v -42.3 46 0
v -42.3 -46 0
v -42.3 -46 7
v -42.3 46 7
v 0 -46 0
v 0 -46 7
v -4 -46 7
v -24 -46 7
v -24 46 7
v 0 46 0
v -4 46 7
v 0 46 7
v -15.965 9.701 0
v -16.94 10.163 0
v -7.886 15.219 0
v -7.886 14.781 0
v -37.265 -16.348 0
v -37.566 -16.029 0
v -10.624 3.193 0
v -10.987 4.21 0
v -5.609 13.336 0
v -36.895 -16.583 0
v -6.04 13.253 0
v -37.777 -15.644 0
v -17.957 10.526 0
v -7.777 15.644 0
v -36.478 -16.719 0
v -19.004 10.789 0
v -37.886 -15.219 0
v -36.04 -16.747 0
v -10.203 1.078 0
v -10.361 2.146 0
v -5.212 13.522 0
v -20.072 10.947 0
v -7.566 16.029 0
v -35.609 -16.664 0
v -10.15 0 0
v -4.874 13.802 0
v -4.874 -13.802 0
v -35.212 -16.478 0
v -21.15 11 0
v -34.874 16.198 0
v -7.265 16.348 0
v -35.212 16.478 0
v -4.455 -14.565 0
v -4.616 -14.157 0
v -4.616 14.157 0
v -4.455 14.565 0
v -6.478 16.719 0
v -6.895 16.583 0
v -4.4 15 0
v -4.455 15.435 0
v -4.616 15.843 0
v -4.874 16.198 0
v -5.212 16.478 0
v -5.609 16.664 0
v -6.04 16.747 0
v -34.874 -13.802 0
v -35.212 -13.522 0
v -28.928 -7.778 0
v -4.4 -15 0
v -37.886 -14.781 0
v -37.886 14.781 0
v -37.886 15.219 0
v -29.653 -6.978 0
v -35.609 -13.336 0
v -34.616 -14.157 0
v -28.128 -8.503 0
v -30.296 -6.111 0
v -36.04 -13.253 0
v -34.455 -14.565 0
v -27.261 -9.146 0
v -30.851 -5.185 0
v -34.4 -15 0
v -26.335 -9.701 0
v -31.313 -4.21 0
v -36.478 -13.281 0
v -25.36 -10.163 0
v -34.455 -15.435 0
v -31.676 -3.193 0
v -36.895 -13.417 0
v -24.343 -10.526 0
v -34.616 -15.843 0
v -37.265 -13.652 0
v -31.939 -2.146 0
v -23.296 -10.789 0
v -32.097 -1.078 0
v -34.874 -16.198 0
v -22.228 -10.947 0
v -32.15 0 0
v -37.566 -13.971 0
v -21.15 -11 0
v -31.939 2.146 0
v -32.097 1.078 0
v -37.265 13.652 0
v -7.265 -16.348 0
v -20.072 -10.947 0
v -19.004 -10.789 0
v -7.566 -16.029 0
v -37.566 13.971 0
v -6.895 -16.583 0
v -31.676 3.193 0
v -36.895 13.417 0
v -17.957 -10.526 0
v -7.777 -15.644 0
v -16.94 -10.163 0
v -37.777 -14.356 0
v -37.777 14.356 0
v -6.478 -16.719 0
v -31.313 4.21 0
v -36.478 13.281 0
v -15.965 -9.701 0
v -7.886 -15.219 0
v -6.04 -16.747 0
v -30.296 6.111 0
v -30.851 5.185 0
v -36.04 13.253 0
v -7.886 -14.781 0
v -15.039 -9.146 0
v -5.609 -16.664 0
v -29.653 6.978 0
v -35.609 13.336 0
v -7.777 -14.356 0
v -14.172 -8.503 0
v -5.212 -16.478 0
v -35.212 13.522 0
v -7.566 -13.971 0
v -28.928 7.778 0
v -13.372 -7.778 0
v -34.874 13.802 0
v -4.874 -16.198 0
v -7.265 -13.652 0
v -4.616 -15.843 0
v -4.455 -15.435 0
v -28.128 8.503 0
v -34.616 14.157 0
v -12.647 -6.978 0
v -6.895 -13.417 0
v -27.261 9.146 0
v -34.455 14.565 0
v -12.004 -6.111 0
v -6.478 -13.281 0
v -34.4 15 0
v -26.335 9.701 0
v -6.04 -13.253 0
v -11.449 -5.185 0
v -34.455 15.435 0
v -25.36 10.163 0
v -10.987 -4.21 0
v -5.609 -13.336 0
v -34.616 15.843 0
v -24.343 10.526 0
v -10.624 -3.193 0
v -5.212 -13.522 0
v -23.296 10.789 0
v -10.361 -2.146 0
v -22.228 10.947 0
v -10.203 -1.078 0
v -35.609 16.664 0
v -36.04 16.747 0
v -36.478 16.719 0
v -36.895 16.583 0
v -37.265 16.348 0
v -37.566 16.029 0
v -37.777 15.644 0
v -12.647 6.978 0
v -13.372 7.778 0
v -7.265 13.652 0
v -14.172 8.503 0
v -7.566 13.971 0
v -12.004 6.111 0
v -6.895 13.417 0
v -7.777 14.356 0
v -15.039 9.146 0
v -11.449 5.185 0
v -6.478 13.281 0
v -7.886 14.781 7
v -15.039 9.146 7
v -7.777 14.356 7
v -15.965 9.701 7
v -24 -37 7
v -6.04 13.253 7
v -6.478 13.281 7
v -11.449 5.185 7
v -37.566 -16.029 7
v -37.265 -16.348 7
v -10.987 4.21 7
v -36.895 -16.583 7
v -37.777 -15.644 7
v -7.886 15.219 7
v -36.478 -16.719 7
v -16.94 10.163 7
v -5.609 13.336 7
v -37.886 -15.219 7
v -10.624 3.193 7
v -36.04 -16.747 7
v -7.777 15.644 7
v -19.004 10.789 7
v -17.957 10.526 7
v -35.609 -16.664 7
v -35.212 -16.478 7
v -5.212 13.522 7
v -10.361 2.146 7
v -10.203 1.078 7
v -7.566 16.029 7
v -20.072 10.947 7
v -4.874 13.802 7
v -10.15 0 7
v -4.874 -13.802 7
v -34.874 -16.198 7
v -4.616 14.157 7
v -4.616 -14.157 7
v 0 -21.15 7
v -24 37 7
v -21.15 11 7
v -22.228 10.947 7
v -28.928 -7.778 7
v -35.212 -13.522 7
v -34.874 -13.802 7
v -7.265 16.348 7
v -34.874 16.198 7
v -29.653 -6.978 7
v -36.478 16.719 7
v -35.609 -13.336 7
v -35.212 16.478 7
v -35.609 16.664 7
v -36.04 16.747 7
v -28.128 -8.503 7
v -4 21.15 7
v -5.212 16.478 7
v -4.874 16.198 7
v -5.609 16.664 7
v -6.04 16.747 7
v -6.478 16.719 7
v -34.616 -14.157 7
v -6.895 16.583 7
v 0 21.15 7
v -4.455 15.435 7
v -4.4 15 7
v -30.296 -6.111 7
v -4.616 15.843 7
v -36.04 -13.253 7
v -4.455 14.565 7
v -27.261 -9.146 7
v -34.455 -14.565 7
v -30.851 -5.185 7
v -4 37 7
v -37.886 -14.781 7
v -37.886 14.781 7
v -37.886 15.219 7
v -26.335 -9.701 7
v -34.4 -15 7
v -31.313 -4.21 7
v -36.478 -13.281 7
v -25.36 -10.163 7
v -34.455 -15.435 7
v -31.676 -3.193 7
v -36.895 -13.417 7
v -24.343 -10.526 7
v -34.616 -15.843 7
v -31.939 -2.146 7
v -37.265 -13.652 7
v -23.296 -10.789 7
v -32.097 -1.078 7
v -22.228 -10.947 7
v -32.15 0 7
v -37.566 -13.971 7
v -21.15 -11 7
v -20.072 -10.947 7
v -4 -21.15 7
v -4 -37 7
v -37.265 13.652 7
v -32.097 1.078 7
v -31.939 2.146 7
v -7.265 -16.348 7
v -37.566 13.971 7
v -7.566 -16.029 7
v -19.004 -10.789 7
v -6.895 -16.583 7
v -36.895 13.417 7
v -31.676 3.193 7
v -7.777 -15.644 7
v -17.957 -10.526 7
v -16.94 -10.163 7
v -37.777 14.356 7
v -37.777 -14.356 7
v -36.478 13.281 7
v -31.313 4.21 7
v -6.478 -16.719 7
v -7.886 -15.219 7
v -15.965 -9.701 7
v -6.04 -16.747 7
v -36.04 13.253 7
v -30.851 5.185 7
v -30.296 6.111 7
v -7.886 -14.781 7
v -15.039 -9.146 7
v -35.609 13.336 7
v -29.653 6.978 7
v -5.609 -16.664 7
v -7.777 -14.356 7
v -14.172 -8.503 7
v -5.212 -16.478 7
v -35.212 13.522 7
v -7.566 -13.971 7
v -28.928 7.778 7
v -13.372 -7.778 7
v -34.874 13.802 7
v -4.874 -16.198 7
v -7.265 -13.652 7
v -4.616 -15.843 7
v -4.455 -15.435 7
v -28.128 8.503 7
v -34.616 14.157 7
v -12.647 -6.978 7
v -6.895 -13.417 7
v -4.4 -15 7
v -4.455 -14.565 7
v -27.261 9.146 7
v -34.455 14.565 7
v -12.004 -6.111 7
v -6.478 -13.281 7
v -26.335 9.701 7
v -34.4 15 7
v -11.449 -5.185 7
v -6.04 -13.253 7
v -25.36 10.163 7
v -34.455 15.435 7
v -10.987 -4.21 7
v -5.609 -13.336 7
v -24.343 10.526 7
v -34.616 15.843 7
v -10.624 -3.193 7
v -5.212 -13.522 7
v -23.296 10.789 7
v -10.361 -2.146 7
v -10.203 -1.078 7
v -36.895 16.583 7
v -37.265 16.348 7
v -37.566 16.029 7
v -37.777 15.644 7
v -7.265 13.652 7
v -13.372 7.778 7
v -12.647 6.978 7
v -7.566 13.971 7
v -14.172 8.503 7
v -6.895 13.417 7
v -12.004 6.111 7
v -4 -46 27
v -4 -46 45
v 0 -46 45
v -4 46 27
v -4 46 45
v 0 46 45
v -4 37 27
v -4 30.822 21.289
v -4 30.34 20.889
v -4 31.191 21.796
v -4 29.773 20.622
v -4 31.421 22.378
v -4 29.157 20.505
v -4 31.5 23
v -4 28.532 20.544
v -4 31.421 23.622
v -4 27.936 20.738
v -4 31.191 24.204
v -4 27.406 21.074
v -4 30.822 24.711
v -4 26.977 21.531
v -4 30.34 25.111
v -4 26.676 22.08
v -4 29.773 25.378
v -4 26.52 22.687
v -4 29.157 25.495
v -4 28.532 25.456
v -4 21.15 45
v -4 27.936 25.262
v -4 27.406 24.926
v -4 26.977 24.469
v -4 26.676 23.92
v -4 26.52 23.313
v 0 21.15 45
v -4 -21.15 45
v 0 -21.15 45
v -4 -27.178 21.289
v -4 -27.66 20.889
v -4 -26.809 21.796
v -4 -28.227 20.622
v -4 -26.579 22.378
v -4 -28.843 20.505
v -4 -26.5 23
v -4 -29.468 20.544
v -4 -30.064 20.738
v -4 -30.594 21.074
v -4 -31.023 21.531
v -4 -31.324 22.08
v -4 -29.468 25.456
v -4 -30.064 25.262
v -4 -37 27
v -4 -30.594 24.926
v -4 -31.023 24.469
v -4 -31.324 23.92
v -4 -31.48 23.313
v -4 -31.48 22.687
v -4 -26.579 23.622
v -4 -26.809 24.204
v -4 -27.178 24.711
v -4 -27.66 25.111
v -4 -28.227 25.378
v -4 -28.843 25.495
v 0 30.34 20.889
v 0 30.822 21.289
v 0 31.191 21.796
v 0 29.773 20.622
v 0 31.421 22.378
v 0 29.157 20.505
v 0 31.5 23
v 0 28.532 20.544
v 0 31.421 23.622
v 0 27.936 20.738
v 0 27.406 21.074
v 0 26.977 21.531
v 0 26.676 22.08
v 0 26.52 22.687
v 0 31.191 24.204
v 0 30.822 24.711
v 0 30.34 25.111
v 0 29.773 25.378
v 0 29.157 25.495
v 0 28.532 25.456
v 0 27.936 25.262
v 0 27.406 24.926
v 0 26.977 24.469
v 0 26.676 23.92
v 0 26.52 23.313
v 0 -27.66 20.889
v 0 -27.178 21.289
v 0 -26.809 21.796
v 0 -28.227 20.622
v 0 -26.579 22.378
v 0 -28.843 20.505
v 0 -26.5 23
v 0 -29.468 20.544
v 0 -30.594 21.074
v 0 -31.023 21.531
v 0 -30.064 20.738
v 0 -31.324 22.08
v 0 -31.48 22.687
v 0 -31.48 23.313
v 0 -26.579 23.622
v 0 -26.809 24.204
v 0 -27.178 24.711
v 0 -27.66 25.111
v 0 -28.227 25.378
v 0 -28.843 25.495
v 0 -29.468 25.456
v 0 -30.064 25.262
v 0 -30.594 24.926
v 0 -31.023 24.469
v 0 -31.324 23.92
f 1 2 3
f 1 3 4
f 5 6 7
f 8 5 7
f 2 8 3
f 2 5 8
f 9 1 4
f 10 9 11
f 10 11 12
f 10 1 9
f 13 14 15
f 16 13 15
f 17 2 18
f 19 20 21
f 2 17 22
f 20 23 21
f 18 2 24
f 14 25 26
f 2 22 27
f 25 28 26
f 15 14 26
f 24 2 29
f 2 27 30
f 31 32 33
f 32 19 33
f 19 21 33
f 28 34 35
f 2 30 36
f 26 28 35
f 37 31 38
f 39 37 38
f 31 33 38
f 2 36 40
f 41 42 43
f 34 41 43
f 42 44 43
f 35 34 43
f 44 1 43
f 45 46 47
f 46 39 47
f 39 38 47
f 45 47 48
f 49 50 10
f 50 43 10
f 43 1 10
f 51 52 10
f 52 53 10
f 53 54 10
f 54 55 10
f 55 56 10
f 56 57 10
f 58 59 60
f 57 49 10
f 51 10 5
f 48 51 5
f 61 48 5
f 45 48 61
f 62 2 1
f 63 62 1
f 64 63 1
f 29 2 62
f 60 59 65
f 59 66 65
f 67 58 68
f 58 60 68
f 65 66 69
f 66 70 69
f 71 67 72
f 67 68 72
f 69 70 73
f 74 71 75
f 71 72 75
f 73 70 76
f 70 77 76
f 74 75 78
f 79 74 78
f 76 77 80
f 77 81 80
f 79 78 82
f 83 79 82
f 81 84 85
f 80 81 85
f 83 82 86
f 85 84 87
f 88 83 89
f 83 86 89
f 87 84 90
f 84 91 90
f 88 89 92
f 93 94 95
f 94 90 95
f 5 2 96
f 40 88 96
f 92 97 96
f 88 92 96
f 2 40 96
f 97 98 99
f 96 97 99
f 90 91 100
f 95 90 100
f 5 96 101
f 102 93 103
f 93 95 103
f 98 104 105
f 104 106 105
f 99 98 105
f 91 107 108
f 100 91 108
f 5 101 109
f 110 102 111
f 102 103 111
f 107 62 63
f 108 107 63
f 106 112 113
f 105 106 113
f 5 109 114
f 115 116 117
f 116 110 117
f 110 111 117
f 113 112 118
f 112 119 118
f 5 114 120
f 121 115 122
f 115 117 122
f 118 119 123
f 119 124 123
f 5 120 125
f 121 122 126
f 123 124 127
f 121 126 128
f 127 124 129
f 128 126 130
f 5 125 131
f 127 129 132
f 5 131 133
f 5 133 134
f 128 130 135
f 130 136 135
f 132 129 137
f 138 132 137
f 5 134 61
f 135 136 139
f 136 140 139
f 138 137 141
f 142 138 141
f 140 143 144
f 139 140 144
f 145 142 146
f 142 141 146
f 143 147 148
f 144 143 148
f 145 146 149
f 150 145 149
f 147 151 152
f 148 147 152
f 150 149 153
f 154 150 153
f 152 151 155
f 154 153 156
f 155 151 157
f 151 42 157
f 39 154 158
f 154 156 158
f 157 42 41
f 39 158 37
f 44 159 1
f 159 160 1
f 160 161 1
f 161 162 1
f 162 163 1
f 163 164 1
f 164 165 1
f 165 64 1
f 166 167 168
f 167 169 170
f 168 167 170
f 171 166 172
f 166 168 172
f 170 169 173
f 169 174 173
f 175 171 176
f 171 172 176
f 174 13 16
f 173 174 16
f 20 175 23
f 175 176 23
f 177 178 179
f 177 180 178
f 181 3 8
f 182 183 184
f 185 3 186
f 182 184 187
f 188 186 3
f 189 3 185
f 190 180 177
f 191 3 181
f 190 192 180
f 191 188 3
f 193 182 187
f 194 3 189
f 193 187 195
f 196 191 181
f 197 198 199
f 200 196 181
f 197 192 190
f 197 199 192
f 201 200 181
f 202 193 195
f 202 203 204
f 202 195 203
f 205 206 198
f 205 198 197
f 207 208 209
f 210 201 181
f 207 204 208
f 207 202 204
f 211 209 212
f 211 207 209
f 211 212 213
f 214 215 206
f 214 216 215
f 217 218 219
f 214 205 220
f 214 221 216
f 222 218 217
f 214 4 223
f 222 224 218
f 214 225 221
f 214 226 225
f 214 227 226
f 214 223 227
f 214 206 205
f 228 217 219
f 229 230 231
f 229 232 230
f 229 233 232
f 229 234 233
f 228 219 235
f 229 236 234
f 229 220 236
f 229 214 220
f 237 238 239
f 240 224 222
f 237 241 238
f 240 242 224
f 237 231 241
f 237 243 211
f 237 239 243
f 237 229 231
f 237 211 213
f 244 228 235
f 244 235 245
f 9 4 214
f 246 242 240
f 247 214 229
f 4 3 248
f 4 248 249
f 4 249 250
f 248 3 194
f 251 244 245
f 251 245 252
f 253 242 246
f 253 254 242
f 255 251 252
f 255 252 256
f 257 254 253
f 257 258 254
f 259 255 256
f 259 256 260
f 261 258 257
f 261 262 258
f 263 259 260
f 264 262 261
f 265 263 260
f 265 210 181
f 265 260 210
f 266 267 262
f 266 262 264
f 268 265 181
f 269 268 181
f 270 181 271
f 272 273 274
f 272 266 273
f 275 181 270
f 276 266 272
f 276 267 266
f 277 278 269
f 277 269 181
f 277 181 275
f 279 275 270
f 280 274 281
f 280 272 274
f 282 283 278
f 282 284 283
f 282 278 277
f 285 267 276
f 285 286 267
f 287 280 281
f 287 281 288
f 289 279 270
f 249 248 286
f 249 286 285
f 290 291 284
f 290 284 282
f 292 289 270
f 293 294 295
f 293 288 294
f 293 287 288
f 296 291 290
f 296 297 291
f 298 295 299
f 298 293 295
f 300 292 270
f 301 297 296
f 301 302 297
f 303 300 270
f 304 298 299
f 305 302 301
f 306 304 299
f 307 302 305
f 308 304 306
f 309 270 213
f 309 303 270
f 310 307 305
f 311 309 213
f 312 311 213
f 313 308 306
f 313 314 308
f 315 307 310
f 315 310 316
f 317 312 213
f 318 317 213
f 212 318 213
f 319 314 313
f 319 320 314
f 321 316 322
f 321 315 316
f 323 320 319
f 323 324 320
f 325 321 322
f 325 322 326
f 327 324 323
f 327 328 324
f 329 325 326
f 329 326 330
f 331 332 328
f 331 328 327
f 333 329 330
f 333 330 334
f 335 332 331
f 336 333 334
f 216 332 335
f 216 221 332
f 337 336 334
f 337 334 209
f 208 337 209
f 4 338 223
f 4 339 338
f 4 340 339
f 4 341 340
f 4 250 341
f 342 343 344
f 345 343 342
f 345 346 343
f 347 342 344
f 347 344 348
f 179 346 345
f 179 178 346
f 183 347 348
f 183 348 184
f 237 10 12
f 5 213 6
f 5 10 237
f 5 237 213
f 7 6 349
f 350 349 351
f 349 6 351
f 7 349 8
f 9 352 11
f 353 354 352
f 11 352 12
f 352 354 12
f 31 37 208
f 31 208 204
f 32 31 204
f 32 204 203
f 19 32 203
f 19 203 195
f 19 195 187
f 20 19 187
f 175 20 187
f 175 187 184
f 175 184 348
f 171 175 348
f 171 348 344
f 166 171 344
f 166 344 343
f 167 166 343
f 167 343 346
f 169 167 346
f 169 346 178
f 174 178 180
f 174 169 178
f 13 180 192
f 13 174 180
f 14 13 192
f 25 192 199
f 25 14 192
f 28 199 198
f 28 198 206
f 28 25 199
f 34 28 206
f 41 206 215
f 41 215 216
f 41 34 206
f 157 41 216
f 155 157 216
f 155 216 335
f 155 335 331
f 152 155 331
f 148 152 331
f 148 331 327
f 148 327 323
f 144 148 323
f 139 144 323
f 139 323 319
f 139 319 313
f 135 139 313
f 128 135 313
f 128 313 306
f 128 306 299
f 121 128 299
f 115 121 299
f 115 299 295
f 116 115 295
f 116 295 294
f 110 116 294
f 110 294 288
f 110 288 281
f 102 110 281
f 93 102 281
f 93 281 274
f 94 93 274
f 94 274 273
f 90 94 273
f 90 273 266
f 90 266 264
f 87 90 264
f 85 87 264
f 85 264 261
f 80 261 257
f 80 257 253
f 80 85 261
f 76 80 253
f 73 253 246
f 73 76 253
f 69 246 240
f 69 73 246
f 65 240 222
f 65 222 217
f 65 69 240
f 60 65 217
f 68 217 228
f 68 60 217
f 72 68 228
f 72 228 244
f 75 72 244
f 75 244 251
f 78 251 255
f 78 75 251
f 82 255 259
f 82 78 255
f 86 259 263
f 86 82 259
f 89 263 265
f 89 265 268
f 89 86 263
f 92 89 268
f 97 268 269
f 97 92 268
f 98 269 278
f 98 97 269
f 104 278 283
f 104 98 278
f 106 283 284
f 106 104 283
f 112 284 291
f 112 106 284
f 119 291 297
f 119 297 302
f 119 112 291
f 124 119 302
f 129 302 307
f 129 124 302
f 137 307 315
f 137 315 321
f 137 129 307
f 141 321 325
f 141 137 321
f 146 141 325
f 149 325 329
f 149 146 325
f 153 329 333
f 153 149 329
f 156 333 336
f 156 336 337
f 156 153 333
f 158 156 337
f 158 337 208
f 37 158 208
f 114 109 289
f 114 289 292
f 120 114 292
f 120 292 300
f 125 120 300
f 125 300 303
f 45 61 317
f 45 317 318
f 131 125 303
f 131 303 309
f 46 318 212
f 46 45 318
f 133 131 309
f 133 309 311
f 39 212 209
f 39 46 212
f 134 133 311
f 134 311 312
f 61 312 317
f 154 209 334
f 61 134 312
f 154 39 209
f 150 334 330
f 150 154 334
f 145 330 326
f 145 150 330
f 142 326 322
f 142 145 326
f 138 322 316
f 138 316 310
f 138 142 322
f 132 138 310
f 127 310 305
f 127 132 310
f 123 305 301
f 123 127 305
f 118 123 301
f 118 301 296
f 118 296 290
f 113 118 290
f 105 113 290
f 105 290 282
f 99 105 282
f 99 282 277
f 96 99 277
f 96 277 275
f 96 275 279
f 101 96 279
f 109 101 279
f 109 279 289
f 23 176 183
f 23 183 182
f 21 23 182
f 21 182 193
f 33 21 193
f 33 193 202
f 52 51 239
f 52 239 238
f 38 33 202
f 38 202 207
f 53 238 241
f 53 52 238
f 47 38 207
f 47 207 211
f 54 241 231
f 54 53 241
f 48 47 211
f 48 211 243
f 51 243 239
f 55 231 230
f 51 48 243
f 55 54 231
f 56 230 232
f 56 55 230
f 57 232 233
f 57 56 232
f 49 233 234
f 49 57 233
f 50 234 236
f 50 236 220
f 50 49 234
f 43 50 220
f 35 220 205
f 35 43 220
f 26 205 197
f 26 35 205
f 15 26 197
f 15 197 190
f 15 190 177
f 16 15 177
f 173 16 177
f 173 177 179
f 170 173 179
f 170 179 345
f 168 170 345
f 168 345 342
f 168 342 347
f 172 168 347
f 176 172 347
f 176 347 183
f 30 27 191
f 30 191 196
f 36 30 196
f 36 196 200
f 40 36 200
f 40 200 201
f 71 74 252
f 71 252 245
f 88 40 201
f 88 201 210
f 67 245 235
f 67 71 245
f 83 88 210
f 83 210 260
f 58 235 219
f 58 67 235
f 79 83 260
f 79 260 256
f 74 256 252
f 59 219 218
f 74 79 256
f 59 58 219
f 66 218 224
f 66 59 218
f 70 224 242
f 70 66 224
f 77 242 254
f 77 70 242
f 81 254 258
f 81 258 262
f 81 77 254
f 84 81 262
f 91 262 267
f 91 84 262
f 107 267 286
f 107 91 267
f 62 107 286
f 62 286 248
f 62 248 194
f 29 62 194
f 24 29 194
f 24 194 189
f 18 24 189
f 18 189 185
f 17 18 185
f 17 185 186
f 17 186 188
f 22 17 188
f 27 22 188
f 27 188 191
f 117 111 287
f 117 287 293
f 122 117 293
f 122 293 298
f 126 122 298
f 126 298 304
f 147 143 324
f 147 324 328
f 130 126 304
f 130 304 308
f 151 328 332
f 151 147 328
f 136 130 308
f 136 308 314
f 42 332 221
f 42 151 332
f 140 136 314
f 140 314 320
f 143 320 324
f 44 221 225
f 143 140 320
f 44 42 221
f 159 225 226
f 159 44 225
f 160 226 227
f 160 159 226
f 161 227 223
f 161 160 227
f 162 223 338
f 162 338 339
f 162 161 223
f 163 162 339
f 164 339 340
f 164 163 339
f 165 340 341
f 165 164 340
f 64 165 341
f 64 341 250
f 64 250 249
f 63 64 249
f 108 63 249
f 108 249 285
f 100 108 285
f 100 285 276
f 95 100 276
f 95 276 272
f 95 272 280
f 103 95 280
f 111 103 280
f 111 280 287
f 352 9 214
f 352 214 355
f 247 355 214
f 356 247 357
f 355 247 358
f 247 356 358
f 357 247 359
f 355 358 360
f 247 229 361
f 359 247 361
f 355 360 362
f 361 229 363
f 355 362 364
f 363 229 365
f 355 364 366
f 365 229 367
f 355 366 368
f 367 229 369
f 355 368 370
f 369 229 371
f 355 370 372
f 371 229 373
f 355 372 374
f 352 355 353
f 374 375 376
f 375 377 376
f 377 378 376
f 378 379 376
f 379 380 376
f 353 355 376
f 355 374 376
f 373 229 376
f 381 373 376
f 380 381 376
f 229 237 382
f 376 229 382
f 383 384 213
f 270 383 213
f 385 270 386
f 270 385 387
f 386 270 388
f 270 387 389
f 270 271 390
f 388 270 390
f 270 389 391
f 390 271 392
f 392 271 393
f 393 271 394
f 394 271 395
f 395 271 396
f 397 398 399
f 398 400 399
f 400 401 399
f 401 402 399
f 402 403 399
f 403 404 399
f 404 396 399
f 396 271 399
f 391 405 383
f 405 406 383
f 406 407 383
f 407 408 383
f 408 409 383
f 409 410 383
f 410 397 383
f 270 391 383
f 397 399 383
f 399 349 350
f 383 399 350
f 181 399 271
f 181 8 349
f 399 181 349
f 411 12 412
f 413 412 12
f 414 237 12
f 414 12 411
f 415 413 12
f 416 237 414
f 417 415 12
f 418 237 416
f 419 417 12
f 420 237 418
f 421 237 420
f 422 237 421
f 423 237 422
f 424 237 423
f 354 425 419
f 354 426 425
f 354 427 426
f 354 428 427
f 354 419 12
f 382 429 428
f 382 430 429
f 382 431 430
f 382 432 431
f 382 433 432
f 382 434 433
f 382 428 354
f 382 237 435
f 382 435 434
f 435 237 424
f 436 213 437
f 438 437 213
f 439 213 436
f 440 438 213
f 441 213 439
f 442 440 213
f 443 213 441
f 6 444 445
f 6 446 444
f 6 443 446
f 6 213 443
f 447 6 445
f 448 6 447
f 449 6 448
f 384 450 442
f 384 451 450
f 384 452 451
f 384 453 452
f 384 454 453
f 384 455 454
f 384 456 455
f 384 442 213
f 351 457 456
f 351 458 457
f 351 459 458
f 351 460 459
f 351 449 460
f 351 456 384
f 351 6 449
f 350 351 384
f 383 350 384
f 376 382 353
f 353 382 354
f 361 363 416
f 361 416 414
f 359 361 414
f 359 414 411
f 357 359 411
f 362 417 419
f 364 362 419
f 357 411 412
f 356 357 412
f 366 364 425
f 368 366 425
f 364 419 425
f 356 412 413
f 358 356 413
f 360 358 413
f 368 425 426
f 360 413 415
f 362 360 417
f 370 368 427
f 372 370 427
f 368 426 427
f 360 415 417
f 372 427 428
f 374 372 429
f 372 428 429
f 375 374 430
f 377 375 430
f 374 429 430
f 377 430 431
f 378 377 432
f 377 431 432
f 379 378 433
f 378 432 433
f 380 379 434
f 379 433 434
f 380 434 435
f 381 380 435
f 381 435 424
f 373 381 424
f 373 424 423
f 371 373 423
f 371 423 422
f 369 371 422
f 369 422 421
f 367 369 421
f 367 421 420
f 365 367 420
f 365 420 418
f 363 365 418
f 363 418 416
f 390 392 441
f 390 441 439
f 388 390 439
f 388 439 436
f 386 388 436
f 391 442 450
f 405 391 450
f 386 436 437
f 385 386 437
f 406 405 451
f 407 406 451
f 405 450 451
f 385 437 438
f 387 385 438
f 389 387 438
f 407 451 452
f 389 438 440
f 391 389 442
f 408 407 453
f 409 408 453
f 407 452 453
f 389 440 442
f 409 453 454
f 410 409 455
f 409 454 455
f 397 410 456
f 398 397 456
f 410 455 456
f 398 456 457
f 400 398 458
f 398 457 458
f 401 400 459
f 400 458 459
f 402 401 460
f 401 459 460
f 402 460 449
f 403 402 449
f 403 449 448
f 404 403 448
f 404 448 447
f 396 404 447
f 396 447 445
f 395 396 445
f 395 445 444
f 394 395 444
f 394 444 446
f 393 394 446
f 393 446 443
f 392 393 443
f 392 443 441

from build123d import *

# Parameters (mm, degrees)
SKETCH001_W  = 24.85
SKETCH001_H  = 38
SKETCH001_R  = 2.5
PAD001_DEPTH = 4
PAD002_DEPTH = 9
SKETCH_W     = 42.3
SKETCH_H     = 92
SKETCH_R     = 1.75
SKETCH_R_2   = 11
PAD_DEPTH    = 7
PAD003_DEPTH = 9


with BuildPart() as support:
    # Sketch001 → Pad001 (new body)
    with BuildSketch(Plane.YZ):
        with Locations((-33.575, 26)):
            Rectangle(SKETCH001_W, SKETCH001_H)
        with Locations((-29, 23)):
            Circle(SKETCH001_R, mode=Mode.SUBTRACT)
        with Locations((33.575, 26)):
            Rectangle(SKETCH001_W, SKETCH001_H)
        with Locations((29, 23)):
            Circle(SKETCH001_R, mode=Mode.SUBTRACT)
    extrude(amount=-PAD001_DEPTH)


with BuildPart() as pad002:
    # Sketch002 → Pad002 (new body)
    with BuildSketch(Plane.XZ.offset(46)):
        Polygon((-4, 27), (-4, 7), (-24, 7), align=None)
    extrude(amount=-PAD002_DEPTH)


with BuildPart() as moteur:
    # Sketch → Pad (new body)
    with BuildSketch(Plane.XY):
        with Locations((-21.15, 0)):
            Rectangle(SKETCH_W, SKETCH_H)
        with Locations((-6.15, 15)):
            Circle(SKETCH_R, mode=Mode.SUBTRACT)
        with Locations((-21.15, 0)):
            Circle(SKETCH_R_2, mode=Mode.SUBTRACT)
        with Locations((-36.15, 15)):
            Circle(SKETCH_R, mode=Mode.SUBTRACT)
        with Locations((-36.15, -15)):
            Circle(SKETCH_R, mode=Mode.SUBTRACT)
        with Locations((-6.15, -15)):
            Circle(SKETCH_R, mode=Mode.SUBTRACT)
    extrude(amount=PAD_DEPTH)


with BuildPart() as fixation:
    # Sketch003 → Pad003 (new body)
    with BuildSketch(Plane.XZ.offset(-46)):
        Polygon((-4, 27), (-4, 7), (-24, 7), align=None)
    extrude(amount=PAD003_DEPTH)

    # Fusion: union support, Pad002, moteur
    add(support.part)
    add(pad002.part)
    add(moteur.part)


solid = fixation.part
